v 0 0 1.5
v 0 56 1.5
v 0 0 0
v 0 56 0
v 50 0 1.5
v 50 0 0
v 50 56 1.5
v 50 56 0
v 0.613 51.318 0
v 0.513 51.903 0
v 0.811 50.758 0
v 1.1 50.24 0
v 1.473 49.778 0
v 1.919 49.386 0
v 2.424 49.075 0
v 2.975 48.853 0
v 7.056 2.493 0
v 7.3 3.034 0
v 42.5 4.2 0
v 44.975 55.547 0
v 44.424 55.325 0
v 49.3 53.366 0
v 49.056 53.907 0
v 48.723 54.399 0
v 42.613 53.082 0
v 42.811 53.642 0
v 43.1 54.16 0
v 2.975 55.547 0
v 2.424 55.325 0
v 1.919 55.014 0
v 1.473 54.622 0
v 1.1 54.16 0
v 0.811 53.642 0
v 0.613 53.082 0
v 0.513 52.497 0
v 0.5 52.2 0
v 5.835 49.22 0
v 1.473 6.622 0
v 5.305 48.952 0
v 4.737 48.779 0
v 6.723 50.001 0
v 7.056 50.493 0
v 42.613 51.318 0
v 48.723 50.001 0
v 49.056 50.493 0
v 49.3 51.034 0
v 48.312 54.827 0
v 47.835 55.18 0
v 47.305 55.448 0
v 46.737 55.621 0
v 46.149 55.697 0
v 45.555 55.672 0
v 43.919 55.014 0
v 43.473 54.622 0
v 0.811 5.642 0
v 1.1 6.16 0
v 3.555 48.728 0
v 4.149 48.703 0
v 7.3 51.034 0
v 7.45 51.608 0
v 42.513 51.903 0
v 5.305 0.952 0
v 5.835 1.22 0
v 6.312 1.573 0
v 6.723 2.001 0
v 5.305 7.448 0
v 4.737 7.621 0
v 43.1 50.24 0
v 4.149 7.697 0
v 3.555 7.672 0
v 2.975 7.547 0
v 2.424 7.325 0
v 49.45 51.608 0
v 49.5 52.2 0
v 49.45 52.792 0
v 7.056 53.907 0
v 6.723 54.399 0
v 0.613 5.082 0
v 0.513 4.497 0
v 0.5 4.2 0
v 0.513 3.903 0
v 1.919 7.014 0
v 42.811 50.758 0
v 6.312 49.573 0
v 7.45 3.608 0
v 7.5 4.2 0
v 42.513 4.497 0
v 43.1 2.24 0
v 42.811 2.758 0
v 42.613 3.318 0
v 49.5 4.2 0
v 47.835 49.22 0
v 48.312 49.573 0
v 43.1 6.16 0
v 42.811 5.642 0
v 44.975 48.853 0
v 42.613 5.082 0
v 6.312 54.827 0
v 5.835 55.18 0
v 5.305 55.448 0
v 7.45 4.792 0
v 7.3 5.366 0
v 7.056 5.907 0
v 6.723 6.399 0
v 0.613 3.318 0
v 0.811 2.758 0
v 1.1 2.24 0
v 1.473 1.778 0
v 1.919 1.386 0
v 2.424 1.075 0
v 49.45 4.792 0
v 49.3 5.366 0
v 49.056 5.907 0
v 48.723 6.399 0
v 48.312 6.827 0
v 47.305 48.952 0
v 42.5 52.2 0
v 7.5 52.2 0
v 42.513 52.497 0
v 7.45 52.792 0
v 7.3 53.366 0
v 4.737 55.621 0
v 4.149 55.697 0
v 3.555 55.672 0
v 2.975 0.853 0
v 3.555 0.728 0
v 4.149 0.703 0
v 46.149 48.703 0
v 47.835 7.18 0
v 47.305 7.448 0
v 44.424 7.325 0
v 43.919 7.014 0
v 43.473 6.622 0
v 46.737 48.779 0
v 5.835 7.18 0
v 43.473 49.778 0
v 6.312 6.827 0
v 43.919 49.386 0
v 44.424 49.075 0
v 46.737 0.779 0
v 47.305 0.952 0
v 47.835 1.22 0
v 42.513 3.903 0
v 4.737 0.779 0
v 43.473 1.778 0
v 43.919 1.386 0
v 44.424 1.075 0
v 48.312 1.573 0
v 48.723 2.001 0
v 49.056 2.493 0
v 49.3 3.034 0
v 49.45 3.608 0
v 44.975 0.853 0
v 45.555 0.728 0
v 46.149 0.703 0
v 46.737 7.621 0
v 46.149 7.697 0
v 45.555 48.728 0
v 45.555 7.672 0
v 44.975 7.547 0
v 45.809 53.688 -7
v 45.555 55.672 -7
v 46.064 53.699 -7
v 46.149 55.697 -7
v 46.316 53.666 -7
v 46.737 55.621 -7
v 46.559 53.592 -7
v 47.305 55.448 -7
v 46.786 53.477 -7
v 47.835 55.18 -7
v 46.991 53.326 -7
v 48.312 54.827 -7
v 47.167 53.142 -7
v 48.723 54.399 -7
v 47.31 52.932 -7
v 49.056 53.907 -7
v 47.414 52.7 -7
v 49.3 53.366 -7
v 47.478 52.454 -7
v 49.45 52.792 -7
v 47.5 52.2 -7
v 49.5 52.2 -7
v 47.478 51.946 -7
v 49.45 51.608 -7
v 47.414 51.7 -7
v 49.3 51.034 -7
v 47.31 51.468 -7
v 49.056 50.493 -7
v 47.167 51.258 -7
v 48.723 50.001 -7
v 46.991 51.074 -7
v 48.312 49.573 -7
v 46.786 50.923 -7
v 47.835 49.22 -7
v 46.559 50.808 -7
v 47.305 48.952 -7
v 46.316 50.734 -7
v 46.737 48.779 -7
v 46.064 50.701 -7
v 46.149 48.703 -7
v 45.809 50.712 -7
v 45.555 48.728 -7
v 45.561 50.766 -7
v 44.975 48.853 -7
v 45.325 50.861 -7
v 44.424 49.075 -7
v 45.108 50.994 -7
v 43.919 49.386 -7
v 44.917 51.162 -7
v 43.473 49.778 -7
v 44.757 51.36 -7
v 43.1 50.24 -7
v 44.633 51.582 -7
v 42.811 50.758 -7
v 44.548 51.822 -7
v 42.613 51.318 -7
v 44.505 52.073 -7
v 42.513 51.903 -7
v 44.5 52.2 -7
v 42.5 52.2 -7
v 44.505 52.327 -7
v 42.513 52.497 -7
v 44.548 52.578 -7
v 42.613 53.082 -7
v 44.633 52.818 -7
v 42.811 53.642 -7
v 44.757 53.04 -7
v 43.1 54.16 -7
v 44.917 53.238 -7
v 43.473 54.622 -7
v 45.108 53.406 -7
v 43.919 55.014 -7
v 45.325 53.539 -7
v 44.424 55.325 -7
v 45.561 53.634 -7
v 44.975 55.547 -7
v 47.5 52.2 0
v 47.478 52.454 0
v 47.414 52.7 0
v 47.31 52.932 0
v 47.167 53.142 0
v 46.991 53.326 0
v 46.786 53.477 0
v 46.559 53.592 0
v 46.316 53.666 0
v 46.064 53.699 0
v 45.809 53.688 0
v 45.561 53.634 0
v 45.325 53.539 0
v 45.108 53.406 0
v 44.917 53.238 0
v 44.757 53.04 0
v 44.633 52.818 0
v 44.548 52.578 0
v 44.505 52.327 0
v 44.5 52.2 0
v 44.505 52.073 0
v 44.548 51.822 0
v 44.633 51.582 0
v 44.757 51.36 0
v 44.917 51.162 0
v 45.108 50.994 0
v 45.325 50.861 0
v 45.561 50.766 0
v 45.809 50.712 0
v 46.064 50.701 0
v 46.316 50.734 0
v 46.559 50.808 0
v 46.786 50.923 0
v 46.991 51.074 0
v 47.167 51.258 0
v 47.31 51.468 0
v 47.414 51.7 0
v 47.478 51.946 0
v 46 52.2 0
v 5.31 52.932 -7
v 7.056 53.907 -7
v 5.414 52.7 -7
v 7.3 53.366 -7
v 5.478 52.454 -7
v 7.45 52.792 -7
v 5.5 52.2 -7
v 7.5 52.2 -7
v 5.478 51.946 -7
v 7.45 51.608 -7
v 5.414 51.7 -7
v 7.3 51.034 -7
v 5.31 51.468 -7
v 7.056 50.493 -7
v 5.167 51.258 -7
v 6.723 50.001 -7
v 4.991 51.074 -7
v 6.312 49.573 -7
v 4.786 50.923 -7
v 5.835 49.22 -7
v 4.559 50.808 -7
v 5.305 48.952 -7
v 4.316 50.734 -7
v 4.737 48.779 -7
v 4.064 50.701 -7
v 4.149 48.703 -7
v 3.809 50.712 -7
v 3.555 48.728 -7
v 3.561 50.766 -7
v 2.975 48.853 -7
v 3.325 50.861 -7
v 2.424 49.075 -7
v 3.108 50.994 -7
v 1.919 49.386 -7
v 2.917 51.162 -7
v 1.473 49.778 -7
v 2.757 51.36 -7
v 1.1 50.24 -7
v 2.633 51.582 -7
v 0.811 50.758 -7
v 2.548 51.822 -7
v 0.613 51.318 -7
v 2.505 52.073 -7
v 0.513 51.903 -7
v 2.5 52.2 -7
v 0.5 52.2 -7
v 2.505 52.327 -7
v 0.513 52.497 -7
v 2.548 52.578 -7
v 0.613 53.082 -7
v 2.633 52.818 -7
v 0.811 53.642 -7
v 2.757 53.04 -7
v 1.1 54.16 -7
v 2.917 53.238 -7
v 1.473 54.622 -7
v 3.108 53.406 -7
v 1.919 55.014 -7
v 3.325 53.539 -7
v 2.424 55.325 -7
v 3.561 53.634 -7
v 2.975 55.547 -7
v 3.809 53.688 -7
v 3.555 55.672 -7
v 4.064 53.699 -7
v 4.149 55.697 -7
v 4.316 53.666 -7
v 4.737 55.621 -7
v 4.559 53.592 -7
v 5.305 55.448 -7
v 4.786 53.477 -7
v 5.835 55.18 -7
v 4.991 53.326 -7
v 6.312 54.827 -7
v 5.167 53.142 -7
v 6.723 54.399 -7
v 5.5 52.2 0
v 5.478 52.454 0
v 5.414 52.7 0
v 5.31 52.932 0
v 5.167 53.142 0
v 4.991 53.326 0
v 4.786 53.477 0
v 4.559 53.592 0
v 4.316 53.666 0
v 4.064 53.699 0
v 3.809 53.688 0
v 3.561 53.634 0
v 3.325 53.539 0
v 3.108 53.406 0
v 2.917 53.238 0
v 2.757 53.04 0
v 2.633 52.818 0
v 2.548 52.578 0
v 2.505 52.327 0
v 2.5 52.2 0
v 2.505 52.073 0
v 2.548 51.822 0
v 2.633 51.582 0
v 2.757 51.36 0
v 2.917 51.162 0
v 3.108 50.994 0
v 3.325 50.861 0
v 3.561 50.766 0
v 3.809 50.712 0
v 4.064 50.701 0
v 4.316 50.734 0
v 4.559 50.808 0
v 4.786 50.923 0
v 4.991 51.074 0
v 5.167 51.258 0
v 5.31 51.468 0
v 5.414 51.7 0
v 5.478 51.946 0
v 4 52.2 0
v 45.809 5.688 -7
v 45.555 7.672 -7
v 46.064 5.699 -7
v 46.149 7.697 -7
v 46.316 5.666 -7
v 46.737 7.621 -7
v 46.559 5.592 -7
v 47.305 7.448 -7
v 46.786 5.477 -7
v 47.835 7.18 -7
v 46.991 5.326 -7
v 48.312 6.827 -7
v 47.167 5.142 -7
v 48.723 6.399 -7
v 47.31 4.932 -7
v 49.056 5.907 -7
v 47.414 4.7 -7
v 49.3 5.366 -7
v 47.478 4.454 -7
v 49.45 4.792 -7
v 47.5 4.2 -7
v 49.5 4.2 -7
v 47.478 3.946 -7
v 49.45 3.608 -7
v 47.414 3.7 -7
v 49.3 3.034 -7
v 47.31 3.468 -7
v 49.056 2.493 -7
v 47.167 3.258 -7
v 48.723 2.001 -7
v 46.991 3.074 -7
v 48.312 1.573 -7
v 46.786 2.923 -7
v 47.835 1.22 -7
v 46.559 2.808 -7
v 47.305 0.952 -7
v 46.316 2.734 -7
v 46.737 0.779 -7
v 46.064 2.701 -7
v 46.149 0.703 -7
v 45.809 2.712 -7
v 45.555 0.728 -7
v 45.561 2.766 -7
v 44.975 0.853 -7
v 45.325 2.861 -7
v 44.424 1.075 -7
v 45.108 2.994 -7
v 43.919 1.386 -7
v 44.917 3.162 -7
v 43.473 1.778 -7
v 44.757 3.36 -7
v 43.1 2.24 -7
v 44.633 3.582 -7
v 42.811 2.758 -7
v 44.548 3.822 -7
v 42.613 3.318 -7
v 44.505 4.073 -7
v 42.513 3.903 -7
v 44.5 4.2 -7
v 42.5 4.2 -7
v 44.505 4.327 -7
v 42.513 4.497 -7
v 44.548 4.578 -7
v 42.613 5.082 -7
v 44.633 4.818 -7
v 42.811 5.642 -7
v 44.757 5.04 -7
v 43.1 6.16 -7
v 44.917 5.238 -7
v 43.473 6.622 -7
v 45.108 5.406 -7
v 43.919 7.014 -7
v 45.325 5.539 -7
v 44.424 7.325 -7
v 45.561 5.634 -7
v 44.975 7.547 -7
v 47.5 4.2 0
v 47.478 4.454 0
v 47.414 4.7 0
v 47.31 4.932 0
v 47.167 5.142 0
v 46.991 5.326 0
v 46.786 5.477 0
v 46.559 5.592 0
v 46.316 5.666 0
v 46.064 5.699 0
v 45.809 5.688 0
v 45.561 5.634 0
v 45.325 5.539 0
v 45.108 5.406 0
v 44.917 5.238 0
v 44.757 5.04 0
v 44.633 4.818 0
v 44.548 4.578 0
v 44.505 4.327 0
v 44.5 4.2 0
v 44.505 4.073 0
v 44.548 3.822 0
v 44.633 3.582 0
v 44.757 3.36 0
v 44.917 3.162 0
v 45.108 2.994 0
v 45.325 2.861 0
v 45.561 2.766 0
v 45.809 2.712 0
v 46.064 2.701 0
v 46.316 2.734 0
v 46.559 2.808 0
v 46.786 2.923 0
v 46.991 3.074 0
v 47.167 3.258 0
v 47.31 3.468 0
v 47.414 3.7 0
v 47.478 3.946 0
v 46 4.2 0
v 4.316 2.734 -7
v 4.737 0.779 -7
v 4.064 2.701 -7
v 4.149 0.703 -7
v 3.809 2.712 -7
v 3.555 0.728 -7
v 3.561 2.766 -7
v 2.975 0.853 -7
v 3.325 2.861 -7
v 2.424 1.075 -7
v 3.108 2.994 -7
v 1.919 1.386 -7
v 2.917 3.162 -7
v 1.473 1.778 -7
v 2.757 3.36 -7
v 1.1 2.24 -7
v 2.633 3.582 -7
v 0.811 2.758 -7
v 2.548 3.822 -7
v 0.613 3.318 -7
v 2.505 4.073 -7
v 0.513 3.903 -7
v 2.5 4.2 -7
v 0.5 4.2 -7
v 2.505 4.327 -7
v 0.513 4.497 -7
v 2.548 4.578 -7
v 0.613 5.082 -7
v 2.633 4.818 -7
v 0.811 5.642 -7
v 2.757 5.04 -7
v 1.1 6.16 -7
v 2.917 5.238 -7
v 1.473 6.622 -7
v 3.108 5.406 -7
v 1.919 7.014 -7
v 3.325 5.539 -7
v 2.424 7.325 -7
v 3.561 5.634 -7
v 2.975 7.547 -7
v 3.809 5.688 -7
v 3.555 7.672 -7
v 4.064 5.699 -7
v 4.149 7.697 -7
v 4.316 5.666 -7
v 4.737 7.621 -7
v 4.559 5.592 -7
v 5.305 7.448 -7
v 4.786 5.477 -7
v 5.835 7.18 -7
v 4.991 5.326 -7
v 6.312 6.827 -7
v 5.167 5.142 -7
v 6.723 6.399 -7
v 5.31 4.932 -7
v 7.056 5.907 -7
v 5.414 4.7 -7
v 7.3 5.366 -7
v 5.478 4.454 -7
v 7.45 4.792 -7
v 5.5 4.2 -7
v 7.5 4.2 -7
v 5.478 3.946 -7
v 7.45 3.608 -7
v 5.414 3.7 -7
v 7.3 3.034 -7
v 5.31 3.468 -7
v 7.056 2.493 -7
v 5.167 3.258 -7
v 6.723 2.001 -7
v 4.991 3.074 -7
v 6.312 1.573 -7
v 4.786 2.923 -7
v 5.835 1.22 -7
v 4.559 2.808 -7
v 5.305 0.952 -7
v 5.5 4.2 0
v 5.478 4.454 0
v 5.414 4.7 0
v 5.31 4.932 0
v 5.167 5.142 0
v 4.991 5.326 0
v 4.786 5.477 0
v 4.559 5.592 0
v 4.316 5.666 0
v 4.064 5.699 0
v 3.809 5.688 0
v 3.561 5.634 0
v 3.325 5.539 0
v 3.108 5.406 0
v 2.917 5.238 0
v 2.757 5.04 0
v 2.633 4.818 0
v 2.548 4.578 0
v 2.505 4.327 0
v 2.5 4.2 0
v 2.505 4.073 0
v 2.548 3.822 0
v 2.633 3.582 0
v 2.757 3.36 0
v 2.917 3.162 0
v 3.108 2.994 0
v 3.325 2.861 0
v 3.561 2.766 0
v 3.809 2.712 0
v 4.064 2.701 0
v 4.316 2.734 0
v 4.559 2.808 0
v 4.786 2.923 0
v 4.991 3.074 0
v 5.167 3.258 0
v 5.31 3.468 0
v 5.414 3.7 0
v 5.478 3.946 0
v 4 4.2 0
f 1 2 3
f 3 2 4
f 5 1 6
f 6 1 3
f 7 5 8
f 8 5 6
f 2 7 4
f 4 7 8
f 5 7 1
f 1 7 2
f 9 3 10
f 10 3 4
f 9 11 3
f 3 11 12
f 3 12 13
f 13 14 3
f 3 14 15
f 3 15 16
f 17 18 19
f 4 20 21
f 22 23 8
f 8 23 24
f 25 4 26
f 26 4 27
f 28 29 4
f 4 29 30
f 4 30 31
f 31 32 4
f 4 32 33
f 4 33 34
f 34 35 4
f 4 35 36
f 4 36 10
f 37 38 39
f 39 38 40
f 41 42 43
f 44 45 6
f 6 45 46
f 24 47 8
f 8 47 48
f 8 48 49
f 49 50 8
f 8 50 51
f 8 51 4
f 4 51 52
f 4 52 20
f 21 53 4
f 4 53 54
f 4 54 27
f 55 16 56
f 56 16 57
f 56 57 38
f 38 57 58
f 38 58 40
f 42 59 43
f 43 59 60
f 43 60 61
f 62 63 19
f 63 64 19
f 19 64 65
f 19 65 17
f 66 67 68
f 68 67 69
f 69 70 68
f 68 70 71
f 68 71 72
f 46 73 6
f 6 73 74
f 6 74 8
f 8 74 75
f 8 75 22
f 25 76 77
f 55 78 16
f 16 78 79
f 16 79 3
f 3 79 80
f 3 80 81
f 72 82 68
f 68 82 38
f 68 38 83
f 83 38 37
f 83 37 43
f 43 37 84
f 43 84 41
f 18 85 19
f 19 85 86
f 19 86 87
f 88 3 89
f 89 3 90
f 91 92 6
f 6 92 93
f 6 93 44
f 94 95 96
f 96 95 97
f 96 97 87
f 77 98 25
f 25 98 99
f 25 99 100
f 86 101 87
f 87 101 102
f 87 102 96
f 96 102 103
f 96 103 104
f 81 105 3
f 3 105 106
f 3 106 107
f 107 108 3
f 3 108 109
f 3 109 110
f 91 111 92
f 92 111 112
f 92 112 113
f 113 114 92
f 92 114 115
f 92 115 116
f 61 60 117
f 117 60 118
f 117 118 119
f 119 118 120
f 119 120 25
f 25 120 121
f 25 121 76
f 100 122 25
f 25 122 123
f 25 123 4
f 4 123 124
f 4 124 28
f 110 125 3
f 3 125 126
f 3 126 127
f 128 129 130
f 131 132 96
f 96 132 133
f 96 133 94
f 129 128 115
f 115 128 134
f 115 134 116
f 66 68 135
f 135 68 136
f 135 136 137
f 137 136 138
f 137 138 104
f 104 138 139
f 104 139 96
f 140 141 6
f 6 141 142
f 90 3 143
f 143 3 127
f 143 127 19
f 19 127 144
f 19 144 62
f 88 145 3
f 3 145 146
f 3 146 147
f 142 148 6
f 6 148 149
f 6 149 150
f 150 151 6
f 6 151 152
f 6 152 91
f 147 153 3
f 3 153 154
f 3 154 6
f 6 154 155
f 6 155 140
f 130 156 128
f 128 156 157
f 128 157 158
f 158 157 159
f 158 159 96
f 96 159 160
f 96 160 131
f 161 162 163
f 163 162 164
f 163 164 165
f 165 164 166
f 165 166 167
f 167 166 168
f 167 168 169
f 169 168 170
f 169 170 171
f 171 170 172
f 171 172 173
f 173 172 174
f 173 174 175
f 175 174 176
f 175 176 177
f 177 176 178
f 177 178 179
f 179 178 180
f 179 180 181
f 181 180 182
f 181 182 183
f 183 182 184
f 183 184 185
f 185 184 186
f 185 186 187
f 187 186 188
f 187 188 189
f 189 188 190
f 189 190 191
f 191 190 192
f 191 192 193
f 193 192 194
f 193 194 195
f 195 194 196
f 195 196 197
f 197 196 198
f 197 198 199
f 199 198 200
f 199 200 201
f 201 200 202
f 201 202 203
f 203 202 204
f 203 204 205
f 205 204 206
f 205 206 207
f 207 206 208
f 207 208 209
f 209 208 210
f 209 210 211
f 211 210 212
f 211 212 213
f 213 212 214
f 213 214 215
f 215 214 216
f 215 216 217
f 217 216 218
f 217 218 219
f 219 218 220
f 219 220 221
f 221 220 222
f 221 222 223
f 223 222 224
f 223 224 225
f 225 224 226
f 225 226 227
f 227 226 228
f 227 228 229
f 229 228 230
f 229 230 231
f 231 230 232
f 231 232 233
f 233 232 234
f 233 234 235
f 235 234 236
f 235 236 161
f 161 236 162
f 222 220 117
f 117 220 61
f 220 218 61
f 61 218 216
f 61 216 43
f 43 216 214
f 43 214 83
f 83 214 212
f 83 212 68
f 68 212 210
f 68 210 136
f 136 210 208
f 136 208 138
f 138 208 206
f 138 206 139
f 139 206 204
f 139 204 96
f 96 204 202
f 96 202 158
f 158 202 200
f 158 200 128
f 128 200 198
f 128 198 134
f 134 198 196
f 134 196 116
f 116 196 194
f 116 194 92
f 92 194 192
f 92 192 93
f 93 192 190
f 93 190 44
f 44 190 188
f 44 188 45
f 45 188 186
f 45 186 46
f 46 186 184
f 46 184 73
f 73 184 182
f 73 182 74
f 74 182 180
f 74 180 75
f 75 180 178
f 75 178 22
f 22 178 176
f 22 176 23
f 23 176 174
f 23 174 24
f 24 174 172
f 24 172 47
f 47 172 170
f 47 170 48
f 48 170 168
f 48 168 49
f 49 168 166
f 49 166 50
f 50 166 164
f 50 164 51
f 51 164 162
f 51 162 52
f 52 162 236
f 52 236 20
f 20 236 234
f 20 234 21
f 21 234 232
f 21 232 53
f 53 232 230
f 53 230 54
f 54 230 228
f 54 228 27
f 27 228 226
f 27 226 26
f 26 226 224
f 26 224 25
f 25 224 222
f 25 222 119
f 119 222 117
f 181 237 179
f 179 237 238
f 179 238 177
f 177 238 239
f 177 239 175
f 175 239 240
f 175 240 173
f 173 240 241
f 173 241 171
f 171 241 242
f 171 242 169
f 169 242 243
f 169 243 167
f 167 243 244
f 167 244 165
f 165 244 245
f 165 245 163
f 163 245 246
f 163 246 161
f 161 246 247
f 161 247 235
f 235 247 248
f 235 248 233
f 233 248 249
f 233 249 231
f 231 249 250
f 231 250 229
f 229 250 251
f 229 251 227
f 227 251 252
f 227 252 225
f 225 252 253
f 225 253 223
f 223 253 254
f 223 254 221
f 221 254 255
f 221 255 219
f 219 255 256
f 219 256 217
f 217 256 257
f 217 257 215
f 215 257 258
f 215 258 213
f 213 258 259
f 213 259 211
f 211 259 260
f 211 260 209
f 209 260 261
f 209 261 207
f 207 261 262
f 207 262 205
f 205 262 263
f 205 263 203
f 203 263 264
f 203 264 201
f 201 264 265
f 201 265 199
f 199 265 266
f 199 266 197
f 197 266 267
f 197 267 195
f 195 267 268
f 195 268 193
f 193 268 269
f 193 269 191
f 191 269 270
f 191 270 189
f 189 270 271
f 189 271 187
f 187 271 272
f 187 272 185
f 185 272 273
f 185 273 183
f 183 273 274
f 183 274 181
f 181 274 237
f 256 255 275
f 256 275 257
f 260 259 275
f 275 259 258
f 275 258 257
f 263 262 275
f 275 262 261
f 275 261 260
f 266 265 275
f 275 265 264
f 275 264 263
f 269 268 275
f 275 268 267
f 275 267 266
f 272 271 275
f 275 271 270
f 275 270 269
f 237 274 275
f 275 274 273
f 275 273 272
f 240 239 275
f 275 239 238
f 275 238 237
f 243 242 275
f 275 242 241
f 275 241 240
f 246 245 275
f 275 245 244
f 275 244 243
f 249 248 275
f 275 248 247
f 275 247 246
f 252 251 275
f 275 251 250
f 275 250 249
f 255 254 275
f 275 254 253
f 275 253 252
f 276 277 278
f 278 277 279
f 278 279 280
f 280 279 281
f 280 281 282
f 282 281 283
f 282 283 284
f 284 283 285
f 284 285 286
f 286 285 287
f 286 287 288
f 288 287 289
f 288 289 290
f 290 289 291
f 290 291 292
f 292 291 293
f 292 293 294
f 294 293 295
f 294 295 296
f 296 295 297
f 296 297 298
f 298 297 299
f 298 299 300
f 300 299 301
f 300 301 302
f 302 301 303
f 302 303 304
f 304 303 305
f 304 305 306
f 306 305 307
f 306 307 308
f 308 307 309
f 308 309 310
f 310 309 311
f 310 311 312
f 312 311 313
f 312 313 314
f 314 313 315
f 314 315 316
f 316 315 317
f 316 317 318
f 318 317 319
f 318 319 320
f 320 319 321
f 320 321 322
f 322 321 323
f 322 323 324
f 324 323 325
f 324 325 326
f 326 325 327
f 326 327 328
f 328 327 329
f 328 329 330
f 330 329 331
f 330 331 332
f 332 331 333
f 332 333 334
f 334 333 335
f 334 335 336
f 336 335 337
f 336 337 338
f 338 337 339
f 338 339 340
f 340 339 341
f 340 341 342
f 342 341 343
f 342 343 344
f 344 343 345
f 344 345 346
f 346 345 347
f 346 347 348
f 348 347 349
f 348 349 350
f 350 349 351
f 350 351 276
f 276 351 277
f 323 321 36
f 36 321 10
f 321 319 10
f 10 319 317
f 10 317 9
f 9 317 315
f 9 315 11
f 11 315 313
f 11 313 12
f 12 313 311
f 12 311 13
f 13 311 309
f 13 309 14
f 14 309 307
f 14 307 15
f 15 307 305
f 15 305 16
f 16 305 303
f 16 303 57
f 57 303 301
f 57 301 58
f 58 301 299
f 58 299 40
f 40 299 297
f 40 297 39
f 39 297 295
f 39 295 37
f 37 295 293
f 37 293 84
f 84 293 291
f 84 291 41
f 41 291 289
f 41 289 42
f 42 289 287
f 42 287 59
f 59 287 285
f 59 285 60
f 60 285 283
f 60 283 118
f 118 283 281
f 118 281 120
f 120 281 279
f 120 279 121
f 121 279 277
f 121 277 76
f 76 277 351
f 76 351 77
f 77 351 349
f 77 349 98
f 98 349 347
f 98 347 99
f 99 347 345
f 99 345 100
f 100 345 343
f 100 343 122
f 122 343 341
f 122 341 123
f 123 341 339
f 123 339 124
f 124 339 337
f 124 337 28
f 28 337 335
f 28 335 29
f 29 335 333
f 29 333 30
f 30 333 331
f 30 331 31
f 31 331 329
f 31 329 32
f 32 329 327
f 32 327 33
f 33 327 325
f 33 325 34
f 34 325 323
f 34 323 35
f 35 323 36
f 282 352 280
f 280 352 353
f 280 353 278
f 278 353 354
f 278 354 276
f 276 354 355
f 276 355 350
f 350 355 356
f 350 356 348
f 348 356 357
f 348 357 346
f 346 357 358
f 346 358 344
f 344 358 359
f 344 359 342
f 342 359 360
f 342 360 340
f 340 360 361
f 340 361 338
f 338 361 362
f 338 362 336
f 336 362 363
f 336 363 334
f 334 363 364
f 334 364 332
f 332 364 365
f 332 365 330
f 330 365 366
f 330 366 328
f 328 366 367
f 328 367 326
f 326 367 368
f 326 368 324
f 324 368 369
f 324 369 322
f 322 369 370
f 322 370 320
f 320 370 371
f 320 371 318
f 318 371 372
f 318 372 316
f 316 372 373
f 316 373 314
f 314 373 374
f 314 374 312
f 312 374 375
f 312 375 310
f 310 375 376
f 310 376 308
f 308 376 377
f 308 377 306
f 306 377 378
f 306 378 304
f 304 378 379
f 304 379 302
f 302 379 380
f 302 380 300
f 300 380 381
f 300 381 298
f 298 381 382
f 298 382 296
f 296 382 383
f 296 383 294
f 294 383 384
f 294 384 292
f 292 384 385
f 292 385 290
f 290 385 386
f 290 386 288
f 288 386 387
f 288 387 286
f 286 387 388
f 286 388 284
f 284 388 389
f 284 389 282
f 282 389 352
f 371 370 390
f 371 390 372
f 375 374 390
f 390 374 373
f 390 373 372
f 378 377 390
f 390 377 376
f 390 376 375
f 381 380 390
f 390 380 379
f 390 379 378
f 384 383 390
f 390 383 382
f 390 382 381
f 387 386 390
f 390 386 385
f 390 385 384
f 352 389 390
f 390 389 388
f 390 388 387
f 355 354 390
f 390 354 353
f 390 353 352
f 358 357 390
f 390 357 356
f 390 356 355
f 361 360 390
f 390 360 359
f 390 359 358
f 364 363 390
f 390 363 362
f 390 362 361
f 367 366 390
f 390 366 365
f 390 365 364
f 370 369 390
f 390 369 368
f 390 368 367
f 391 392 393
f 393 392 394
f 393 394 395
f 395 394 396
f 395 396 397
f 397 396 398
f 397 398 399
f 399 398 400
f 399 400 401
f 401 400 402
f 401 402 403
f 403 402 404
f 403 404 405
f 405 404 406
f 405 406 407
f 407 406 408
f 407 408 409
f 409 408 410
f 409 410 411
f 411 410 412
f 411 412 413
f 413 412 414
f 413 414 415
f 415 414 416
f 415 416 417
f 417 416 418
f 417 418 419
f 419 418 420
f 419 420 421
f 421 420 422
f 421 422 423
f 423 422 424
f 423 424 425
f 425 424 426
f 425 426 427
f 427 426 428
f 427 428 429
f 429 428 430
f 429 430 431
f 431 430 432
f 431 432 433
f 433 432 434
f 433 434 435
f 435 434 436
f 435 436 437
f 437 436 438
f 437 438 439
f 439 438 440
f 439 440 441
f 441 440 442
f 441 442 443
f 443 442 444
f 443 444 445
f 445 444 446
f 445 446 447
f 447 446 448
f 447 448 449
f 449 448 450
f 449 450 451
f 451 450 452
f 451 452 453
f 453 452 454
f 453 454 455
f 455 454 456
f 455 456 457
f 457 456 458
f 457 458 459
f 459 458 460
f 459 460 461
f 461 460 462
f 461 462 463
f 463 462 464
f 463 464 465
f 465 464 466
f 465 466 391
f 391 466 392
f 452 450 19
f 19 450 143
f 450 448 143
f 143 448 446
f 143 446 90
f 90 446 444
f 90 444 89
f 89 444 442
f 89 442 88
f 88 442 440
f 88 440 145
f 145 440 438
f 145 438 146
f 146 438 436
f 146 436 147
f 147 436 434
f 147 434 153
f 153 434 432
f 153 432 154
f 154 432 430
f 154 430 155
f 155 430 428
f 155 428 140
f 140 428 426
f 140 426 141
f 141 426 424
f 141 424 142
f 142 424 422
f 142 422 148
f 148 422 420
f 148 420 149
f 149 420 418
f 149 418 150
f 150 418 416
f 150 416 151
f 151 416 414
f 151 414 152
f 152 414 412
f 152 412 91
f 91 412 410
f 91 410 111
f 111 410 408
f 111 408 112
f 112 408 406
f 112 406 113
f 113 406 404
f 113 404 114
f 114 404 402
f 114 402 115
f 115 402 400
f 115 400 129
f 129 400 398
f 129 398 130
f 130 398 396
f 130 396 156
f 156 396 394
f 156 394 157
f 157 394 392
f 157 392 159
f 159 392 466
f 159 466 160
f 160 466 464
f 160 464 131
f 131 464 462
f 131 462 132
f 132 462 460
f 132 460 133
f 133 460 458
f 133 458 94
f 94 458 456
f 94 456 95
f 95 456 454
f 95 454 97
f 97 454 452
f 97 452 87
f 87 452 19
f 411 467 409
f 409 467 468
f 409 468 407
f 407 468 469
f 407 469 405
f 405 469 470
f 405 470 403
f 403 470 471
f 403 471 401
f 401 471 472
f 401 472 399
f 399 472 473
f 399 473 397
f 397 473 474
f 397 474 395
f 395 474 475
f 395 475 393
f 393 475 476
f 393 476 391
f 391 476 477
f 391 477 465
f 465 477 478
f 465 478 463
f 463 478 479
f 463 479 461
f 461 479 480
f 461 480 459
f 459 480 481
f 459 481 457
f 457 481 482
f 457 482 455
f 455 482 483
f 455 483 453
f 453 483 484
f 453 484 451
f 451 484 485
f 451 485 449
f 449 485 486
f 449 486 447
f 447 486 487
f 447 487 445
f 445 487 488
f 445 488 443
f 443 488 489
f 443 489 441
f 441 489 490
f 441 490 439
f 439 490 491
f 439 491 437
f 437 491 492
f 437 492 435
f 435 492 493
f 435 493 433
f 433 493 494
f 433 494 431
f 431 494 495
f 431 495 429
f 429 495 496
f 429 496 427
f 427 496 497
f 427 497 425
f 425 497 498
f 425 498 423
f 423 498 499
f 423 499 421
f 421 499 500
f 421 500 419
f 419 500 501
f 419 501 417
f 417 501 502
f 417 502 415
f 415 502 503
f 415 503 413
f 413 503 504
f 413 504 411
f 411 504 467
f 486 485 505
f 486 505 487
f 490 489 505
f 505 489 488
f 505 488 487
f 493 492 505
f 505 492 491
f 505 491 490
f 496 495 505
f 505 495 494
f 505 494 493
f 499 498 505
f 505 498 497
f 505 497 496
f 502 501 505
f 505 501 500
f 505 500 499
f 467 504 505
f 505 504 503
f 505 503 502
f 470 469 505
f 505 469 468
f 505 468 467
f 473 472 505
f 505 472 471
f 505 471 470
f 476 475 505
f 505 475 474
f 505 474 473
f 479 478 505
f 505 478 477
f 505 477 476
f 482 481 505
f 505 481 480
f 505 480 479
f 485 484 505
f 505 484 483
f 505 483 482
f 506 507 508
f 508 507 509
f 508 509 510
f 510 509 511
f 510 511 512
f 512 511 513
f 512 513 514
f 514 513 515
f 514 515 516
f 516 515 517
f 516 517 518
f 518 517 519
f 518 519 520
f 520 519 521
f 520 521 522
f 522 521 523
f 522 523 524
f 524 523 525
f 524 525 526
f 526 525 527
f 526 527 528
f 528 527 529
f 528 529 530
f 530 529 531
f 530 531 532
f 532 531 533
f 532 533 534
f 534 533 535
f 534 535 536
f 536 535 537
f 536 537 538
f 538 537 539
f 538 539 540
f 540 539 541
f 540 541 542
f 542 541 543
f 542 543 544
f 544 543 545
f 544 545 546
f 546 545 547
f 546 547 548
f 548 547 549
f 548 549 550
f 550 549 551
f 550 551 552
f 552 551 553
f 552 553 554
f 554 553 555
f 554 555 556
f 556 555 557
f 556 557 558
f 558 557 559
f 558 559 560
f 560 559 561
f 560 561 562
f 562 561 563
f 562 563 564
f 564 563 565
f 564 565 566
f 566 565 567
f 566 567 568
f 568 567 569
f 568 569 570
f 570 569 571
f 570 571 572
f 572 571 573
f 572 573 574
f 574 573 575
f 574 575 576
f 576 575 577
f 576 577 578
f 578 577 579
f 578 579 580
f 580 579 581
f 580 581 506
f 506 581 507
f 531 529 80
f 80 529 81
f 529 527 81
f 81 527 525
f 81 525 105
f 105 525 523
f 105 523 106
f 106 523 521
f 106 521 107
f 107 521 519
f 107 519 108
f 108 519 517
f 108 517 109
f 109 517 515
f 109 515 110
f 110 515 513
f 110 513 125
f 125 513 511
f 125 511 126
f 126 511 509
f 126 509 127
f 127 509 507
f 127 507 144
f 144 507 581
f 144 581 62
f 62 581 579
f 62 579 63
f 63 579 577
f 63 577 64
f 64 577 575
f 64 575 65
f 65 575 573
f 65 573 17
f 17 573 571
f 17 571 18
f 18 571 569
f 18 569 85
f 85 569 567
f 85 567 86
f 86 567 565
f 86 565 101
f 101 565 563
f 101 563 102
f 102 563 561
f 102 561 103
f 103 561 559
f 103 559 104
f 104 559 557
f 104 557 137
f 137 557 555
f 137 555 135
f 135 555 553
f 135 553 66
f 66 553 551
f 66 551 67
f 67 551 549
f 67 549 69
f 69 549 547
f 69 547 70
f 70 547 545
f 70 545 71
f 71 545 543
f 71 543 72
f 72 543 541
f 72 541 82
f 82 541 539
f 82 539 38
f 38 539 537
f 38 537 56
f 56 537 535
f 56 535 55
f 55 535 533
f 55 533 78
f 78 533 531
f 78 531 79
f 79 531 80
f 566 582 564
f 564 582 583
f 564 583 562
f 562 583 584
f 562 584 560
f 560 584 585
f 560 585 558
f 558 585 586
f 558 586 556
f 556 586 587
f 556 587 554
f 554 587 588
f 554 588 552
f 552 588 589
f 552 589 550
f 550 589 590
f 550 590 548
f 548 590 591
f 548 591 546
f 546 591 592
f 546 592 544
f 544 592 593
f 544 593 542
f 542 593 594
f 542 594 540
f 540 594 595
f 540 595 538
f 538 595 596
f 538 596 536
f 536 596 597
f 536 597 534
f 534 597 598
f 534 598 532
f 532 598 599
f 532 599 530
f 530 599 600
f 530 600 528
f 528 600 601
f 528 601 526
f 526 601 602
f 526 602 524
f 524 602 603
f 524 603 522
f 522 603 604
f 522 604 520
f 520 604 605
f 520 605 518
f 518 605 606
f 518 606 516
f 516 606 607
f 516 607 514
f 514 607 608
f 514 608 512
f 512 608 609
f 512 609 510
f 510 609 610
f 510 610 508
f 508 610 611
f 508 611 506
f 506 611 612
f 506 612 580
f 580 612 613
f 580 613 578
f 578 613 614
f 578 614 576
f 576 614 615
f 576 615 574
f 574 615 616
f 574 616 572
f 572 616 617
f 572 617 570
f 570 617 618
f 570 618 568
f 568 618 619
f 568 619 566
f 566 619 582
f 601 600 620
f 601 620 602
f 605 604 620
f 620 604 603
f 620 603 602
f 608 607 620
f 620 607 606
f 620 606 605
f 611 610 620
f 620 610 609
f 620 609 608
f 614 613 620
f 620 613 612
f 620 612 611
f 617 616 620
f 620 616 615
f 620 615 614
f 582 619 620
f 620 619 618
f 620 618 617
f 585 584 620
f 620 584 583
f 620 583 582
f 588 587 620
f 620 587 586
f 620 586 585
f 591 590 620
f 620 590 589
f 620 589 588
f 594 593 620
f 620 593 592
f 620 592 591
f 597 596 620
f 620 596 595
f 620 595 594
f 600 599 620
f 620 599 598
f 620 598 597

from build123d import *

# Parameters (mm, degrees)
SKETCH_1_W      = 50
SKETCH_1_H      = 56
EXTRUDE_1_DEPTH = 1.5
SKETCH_2_R      = 3.5
SKETCH_2_R_2    = 1.5
EXTRUDE_2_DEPTH = 7


with BuildPart() as part:
    # Эскиз1 → Бобышка-Вытянуть1 (new body)
    with BuildSketch(Plane.XY):
        with Locations((25, 28)):
            Rectangle(SKETCH_1_W, SKETCH_1_H)
    extrude(amount=EXTRUDE_1_DEPTH)

    # Эскиз2 → Бобышка-Вытянуть2 (add)
    # profile 1 of 4: a face of its own
    with BuildSketch(Plane(origin=(0, 0, 0), x_dir=(-1, 0, 0), z_dir=(0, 0, -1))):
        with Locations((-46, 52.2)):
            Circle(SKETCH_2_R)
        with Locations((-46, 52.2)):
            Circle(SKETCH_2_R_2, mode=Mode.SUBTRACT)
    # profile 2 of 4: a face of its own
    with BuildSketch(Plane(origin=(0, 0, 0), x_dir=(-1, 0, 0), z_dir=(0, 0, -1))):
        with Locations((-4, 52.2)):
            Circle(SKETCH_2_R)
        with Locations((-4, 52.2)):
            Circle(SKETCH_2_R_2, mode=Mode.SUBTRACT)
    # profile 3 of 4: a face of its own
    with BuildSketch(Plane(origin=(0, 0, 0), x_dir=(-1, 0, 0), z_dir=(0, 0, -1))):
        with Locations((-46, 4.2)):
            Circle(SKETCH_2_R)
        with Locations((-46, 4.2)):
            Circle(SKETCH_2_R_2, mode=Mode.SUBTRACT)
    # profile 4 of 4: a face of its own
    with BuildSketch(Plane(origin=(0, 0, 0), x_dir=(-1, 0, 0), z_dir=(0, 0, -1))):
        with Locations((-4, 4.2)):
            Circle(SKETCH_2_R)
        with Locations((-4, 4.2)):
            Circle(SKETCH_2_R_2, mode=Mode.SUBTRACT)
    extrude(amount=EXTRUDE_2_DEPTH)


solid = part.part
